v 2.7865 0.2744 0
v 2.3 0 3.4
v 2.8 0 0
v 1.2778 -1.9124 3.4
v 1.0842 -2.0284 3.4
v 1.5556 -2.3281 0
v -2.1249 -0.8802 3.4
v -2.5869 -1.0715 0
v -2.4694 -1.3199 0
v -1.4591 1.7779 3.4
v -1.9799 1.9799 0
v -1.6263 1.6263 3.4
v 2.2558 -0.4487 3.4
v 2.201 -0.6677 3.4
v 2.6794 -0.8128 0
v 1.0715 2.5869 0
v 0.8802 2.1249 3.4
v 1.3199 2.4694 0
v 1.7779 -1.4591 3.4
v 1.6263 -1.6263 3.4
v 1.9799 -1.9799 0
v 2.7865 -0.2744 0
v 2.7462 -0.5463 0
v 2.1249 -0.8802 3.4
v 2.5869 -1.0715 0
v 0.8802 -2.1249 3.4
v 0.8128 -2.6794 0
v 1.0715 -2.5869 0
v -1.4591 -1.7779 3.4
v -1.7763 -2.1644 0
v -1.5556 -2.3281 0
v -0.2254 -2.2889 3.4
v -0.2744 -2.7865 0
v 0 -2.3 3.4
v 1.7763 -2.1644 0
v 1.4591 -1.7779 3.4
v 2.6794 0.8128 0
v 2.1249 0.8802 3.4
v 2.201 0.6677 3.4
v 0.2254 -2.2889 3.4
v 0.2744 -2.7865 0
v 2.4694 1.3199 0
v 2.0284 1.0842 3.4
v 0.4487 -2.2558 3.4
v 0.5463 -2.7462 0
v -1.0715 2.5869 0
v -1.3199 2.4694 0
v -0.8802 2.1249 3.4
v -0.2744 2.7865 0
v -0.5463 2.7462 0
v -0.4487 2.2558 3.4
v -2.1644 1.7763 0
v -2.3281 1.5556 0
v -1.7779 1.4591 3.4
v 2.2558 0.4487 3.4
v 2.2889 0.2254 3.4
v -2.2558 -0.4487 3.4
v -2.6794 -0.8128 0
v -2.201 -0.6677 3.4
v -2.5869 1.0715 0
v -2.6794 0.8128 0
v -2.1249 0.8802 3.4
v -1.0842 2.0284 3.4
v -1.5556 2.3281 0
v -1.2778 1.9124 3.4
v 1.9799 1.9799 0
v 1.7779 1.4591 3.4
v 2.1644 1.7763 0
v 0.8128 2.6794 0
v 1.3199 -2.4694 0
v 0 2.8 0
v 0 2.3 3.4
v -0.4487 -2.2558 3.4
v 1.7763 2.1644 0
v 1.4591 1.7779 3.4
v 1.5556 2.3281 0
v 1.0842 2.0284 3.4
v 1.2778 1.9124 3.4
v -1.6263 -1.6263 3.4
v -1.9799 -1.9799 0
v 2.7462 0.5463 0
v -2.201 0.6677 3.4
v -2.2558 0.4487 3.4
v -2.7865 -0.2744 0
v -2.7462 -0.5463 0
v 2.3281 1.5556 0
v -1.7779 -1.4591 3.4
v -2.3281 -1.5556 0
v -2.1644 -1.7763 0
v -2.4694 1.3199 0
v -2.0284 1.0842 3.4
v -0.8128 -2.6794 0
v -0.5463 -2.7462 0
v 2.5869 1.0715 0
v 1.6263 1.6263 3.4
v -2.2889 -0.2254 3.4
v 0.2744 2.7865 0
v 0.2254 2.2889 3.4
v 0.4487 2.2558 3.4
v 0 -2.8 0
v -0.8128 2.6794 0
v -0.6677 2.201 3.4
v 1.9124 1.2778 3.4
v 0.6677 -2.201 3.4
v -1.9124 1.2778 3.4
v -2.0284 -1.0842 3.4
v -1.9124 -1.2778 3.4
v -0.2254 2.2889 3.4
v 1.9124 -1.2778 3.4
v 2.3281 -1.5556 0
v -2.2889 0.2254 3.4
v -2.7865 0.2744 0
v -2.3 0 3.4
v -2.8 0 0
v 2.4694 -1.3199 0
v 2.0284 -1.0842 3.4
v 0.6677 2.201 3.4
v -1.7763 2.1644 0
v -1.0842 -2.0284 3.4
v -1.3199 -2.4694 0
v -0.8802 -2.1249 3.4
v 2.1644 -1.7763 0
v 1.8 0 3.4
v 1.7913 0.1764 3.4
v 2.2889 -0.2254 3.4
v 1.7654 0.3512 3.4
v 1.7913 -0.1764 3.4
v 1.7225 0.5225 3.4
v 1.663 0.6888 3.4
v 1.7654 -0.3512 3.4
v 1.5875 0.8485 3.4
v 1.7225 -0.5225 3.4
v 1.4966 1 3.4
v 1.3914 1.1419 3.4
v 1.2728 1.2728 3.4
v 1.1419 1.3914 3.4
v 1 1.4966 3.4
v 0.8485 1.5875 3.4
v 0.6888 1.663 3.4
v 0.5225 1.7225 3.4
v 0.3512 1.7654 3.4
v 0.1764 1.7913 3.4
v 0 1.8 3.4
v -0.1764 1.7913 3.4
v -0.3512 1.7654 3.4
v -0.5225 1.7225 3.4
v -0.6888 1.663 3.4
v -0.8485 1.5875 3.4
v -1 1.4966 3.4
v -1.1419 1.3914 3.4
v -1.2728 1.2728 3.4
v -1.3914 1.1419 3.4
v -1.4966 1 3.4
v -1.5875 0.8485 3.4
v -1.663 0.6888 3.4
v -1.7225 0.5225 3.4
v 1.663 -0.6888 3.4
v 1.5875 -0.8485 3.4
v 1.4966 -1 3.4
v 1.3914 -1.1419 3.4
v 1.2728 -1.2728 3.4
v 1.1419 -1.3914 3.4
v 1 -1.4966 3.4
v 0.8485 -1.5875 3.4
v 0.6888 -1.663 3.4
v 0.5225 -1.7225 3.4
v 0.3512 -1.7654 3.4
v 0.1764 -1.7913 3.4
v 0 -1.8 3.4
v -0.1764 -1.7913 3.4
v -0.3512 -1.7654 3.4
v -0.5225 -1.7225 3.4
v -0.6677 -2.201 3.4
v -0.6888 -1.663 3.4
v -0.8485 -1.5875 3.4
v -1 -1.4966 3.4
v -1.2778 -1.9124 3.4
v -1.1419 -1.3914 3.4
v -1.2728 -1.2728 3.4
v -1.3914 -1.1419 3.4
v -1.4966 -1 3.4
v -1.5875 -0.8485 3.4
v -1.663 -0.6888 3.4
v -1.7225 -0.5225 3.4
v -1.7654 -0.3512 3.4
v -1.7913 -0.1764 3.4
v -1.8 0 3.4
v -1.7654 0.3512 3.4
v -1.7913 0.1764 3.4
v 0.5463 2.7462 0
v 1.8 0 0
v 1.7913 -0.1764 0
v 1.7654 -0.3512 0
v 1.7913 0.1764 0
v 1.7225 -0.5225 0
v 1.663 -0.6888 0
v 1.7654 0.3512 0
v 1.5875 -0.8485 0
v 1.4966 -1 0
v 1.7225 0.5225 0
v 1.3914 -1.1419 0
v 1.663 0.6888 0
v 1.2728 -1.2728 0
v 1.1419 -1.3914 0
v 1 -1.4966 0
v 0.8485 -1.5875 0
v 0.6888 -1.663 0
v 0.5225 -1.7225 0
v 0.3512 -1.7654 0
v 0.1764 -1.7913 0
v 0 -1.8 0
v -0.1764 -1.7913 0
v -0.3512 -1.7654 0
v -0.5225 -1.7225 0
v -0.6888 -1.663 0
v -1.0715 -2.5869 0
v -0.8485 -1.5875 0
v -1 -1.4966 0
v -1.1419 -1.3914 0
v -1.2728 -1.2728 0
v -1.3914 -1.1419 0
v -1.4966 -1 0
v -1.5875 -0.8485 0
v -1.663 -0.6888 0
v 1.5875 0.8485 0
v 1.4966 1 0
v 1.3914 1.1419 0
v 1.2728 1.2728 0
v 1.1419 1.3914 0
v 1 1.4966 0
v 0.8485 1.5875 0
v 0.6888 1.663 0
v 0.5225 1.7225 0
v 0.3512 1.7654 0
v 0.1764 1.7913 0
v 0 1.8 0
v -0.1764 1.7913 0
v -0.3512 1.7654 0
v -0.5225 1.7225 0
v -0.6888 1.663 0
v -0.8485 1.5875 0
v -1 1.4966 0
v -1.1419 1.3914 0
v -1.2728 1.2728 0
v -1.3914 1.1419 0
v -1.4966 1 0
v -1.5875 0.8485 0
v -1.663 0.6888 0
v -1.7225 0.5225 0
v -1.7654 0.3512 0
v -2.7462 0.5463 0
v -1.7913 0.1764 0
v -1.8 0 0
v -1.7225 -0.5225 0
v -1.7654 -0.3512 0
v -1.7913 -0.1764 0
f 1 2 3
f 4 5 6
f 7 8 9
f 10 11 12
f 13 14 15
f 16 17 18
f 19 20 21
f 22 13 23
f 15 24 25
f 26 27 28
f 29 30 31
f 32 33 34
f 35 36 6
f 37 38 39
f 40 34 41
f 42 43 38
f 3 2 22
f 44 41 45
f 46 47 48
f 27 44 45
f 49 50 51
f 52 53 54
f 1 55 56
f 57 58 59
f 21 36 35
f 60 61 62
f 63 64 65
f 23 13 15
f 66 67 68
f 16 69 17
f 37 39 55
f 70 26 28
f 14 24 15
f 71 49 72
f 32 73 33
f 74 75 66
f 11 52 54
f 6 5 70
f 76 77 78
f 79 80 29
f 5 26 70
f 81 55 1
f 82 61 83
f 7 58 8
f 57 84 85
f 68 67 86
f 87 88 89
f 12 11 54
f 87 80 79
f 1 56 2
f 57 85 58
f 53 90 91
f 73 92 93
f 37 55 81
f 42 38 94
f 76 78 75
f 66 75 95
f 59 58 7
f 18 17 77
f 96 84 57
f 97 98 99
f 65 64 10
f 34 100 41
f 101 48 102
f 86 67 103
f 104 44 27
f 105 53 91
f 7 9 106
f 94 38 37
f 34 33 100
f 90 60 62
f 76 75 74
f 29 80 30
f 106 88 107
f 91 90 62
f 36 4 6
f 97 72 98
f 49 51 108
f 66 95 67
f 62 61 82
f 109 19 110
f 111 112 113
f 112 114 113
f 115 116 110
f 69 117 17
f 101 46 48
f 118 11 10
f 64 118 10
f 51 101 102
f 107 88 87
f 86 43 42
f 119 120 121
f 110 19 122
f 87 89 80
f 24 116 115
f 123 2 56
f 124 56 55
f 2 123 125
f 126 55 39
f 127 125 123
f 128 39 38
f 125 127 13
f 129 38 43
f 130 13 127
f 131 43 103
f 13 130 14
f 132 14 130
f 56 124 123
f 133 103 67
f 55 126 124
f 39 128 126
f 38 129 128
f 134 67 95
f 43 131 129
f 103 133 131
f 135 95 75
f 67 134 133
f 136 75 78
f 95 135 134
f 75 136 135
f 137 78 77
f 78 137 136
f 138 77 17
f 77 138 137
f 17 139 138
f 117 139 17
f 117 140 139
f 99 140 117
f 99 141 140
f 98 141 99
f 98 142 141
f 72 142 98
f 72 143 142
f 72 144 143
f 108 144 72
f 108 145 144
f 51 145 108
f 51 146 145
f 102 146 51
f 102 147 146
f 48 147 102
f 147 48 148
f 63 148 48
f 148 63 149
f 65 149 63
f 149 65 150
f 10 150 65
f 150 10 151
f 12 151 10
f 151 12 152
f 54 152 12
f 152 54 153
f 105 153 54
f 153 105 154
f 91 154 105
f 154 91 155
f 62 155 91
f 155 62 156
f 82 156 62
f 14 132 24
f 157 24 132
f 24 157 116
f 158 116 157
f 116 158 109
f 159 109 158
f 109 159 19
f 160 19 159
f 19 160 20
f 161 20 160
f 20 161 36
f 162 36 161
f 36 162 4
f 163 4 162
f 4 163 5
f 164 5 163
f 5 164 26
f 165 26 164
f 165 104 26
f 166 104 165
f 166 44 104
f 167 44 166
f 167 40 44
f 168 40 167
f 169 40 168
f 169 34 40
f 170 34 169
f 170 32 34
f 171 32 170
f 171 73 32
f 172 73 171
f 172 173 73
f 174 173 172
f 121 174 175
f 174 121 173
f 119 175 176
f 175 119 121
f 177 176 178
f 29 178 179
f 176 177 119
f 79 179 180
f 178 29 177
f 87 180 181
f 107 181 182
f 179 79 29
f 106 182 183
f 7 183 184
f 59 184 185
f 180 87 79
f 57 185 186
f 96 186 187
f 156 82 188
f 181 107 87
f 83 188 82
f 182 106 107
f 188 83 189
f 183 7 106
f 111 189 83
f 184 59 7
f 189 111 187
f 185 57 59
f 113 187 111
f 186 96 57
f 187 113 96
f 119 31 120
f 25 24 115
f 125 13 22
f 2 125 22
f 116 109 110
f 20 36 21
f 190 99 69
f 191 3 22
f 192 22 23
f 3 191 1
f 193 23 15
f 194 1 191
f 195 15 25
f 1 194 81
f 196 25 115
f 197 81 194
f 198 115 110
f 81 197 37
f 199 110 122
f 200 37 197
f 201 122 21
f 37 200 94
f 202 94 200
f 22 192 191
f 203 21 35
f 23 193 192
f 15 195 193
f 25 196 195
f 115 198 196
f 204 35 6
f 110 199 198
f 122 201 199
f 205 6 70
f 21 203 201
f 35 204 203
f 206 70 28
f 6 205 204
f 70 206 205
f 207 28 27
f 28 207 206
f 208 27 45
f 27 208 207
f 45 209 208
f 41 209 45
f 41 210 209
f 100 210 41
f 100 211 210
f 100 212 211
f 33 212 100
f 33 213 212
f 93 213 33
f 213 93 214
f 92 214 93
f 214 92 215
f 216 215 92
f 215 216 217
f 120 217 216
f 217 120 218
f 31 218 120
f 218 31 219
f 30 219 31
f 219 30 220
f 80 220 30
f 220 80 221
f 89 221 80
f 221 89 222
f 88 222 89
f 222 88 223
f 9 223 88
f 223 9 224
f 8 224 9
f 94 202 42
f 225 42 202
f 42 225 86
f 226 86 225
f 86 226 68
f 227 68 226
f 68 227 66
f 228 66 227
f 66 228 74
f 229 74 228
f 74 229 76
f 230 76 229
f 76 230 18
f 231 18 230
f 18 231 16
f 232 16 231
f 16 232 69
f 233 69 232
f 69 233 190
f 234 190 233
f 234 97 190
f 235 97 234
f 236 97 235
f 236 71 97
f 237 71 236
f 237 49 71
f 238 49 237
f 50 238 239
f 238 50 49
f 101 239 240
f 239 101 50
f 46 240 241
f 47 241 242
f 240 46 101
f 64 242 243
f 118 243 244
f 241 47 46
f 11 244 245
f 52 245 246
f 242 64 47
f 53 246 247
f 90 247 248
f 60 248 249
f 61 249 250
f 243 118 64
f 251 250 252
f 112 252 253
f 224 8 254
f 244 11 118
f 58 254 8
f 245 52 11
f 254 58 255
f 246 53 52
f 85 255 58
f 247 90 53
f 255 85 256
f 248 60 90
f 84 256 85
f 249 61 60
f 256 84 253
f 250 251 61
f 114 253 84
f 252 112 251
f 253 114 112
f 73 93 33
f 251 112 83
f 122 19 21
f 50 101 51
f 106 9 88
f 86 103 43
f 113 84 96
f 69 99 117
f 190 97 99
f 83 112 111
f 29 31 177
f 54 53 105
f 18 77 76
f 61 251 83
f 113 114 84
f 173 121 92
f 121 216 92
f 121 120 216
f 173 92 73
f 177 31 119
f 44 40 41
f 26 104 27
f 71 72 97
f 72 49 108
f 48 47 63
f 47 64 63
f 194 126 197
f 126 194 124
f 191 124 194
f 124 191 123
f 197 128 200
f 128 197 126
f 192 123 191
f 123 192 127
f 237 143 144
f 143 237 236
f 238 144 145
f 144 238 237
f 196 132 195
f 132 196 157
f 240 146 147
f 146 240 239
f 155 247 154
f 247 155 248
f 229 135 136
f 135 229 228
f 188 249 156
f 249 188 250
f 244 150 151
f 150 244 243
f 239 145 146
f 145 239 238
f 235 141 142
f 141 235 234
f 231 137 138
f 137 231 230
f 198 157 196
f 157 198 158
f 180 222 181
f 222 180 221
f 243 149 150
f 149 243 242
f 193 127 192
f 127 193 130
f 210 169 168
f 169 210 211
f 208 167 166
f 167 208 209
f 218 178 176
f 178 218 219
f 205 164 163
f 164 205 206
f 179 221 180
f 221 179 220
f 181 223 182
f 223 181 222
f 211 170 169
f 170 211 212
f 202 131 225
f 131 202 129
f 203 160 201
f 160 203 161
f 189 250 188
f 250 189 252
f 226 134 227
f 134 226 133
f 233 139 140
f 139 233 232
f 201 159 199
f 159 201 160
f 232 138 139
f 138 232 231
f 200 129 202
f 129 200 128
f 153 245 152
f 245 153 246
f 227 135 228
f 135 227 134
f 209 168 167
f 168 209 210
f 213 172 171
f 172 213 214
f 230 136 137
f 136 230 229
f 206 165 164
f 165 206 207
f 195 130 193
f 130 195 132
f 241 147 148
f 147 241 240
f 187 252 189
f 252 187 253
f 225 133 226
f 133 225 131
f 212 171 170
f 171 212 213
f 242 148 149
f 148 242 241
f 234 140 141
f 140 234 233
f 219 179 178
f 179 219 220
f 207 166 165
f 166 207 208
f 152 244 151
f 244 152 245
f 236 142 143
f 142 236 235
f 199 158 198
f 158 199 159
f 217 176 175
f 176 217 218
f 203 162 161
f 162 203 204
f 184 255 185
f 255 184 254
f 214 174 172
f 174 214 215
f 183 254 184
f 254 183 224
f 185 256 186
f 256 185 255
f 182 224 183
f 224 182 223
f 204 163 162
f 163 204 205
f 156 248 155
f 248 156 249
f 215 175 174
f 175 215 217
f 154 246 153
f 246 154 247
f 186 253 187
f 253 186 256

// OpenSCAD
$fa = $preview ? 1 : 0.01;
$fs = $preview ? 0.1 : 0.01;
$fn = $preview ? 32 : 64;

plate_thickness = 1.6;

height = 5 - plate_thickness;
width = 2.8;

difference() {
    cylinder(height, width, 2.3);
    translate([0,0,-0.1])
    cylinder(6, 1.8, 1.8);
}
